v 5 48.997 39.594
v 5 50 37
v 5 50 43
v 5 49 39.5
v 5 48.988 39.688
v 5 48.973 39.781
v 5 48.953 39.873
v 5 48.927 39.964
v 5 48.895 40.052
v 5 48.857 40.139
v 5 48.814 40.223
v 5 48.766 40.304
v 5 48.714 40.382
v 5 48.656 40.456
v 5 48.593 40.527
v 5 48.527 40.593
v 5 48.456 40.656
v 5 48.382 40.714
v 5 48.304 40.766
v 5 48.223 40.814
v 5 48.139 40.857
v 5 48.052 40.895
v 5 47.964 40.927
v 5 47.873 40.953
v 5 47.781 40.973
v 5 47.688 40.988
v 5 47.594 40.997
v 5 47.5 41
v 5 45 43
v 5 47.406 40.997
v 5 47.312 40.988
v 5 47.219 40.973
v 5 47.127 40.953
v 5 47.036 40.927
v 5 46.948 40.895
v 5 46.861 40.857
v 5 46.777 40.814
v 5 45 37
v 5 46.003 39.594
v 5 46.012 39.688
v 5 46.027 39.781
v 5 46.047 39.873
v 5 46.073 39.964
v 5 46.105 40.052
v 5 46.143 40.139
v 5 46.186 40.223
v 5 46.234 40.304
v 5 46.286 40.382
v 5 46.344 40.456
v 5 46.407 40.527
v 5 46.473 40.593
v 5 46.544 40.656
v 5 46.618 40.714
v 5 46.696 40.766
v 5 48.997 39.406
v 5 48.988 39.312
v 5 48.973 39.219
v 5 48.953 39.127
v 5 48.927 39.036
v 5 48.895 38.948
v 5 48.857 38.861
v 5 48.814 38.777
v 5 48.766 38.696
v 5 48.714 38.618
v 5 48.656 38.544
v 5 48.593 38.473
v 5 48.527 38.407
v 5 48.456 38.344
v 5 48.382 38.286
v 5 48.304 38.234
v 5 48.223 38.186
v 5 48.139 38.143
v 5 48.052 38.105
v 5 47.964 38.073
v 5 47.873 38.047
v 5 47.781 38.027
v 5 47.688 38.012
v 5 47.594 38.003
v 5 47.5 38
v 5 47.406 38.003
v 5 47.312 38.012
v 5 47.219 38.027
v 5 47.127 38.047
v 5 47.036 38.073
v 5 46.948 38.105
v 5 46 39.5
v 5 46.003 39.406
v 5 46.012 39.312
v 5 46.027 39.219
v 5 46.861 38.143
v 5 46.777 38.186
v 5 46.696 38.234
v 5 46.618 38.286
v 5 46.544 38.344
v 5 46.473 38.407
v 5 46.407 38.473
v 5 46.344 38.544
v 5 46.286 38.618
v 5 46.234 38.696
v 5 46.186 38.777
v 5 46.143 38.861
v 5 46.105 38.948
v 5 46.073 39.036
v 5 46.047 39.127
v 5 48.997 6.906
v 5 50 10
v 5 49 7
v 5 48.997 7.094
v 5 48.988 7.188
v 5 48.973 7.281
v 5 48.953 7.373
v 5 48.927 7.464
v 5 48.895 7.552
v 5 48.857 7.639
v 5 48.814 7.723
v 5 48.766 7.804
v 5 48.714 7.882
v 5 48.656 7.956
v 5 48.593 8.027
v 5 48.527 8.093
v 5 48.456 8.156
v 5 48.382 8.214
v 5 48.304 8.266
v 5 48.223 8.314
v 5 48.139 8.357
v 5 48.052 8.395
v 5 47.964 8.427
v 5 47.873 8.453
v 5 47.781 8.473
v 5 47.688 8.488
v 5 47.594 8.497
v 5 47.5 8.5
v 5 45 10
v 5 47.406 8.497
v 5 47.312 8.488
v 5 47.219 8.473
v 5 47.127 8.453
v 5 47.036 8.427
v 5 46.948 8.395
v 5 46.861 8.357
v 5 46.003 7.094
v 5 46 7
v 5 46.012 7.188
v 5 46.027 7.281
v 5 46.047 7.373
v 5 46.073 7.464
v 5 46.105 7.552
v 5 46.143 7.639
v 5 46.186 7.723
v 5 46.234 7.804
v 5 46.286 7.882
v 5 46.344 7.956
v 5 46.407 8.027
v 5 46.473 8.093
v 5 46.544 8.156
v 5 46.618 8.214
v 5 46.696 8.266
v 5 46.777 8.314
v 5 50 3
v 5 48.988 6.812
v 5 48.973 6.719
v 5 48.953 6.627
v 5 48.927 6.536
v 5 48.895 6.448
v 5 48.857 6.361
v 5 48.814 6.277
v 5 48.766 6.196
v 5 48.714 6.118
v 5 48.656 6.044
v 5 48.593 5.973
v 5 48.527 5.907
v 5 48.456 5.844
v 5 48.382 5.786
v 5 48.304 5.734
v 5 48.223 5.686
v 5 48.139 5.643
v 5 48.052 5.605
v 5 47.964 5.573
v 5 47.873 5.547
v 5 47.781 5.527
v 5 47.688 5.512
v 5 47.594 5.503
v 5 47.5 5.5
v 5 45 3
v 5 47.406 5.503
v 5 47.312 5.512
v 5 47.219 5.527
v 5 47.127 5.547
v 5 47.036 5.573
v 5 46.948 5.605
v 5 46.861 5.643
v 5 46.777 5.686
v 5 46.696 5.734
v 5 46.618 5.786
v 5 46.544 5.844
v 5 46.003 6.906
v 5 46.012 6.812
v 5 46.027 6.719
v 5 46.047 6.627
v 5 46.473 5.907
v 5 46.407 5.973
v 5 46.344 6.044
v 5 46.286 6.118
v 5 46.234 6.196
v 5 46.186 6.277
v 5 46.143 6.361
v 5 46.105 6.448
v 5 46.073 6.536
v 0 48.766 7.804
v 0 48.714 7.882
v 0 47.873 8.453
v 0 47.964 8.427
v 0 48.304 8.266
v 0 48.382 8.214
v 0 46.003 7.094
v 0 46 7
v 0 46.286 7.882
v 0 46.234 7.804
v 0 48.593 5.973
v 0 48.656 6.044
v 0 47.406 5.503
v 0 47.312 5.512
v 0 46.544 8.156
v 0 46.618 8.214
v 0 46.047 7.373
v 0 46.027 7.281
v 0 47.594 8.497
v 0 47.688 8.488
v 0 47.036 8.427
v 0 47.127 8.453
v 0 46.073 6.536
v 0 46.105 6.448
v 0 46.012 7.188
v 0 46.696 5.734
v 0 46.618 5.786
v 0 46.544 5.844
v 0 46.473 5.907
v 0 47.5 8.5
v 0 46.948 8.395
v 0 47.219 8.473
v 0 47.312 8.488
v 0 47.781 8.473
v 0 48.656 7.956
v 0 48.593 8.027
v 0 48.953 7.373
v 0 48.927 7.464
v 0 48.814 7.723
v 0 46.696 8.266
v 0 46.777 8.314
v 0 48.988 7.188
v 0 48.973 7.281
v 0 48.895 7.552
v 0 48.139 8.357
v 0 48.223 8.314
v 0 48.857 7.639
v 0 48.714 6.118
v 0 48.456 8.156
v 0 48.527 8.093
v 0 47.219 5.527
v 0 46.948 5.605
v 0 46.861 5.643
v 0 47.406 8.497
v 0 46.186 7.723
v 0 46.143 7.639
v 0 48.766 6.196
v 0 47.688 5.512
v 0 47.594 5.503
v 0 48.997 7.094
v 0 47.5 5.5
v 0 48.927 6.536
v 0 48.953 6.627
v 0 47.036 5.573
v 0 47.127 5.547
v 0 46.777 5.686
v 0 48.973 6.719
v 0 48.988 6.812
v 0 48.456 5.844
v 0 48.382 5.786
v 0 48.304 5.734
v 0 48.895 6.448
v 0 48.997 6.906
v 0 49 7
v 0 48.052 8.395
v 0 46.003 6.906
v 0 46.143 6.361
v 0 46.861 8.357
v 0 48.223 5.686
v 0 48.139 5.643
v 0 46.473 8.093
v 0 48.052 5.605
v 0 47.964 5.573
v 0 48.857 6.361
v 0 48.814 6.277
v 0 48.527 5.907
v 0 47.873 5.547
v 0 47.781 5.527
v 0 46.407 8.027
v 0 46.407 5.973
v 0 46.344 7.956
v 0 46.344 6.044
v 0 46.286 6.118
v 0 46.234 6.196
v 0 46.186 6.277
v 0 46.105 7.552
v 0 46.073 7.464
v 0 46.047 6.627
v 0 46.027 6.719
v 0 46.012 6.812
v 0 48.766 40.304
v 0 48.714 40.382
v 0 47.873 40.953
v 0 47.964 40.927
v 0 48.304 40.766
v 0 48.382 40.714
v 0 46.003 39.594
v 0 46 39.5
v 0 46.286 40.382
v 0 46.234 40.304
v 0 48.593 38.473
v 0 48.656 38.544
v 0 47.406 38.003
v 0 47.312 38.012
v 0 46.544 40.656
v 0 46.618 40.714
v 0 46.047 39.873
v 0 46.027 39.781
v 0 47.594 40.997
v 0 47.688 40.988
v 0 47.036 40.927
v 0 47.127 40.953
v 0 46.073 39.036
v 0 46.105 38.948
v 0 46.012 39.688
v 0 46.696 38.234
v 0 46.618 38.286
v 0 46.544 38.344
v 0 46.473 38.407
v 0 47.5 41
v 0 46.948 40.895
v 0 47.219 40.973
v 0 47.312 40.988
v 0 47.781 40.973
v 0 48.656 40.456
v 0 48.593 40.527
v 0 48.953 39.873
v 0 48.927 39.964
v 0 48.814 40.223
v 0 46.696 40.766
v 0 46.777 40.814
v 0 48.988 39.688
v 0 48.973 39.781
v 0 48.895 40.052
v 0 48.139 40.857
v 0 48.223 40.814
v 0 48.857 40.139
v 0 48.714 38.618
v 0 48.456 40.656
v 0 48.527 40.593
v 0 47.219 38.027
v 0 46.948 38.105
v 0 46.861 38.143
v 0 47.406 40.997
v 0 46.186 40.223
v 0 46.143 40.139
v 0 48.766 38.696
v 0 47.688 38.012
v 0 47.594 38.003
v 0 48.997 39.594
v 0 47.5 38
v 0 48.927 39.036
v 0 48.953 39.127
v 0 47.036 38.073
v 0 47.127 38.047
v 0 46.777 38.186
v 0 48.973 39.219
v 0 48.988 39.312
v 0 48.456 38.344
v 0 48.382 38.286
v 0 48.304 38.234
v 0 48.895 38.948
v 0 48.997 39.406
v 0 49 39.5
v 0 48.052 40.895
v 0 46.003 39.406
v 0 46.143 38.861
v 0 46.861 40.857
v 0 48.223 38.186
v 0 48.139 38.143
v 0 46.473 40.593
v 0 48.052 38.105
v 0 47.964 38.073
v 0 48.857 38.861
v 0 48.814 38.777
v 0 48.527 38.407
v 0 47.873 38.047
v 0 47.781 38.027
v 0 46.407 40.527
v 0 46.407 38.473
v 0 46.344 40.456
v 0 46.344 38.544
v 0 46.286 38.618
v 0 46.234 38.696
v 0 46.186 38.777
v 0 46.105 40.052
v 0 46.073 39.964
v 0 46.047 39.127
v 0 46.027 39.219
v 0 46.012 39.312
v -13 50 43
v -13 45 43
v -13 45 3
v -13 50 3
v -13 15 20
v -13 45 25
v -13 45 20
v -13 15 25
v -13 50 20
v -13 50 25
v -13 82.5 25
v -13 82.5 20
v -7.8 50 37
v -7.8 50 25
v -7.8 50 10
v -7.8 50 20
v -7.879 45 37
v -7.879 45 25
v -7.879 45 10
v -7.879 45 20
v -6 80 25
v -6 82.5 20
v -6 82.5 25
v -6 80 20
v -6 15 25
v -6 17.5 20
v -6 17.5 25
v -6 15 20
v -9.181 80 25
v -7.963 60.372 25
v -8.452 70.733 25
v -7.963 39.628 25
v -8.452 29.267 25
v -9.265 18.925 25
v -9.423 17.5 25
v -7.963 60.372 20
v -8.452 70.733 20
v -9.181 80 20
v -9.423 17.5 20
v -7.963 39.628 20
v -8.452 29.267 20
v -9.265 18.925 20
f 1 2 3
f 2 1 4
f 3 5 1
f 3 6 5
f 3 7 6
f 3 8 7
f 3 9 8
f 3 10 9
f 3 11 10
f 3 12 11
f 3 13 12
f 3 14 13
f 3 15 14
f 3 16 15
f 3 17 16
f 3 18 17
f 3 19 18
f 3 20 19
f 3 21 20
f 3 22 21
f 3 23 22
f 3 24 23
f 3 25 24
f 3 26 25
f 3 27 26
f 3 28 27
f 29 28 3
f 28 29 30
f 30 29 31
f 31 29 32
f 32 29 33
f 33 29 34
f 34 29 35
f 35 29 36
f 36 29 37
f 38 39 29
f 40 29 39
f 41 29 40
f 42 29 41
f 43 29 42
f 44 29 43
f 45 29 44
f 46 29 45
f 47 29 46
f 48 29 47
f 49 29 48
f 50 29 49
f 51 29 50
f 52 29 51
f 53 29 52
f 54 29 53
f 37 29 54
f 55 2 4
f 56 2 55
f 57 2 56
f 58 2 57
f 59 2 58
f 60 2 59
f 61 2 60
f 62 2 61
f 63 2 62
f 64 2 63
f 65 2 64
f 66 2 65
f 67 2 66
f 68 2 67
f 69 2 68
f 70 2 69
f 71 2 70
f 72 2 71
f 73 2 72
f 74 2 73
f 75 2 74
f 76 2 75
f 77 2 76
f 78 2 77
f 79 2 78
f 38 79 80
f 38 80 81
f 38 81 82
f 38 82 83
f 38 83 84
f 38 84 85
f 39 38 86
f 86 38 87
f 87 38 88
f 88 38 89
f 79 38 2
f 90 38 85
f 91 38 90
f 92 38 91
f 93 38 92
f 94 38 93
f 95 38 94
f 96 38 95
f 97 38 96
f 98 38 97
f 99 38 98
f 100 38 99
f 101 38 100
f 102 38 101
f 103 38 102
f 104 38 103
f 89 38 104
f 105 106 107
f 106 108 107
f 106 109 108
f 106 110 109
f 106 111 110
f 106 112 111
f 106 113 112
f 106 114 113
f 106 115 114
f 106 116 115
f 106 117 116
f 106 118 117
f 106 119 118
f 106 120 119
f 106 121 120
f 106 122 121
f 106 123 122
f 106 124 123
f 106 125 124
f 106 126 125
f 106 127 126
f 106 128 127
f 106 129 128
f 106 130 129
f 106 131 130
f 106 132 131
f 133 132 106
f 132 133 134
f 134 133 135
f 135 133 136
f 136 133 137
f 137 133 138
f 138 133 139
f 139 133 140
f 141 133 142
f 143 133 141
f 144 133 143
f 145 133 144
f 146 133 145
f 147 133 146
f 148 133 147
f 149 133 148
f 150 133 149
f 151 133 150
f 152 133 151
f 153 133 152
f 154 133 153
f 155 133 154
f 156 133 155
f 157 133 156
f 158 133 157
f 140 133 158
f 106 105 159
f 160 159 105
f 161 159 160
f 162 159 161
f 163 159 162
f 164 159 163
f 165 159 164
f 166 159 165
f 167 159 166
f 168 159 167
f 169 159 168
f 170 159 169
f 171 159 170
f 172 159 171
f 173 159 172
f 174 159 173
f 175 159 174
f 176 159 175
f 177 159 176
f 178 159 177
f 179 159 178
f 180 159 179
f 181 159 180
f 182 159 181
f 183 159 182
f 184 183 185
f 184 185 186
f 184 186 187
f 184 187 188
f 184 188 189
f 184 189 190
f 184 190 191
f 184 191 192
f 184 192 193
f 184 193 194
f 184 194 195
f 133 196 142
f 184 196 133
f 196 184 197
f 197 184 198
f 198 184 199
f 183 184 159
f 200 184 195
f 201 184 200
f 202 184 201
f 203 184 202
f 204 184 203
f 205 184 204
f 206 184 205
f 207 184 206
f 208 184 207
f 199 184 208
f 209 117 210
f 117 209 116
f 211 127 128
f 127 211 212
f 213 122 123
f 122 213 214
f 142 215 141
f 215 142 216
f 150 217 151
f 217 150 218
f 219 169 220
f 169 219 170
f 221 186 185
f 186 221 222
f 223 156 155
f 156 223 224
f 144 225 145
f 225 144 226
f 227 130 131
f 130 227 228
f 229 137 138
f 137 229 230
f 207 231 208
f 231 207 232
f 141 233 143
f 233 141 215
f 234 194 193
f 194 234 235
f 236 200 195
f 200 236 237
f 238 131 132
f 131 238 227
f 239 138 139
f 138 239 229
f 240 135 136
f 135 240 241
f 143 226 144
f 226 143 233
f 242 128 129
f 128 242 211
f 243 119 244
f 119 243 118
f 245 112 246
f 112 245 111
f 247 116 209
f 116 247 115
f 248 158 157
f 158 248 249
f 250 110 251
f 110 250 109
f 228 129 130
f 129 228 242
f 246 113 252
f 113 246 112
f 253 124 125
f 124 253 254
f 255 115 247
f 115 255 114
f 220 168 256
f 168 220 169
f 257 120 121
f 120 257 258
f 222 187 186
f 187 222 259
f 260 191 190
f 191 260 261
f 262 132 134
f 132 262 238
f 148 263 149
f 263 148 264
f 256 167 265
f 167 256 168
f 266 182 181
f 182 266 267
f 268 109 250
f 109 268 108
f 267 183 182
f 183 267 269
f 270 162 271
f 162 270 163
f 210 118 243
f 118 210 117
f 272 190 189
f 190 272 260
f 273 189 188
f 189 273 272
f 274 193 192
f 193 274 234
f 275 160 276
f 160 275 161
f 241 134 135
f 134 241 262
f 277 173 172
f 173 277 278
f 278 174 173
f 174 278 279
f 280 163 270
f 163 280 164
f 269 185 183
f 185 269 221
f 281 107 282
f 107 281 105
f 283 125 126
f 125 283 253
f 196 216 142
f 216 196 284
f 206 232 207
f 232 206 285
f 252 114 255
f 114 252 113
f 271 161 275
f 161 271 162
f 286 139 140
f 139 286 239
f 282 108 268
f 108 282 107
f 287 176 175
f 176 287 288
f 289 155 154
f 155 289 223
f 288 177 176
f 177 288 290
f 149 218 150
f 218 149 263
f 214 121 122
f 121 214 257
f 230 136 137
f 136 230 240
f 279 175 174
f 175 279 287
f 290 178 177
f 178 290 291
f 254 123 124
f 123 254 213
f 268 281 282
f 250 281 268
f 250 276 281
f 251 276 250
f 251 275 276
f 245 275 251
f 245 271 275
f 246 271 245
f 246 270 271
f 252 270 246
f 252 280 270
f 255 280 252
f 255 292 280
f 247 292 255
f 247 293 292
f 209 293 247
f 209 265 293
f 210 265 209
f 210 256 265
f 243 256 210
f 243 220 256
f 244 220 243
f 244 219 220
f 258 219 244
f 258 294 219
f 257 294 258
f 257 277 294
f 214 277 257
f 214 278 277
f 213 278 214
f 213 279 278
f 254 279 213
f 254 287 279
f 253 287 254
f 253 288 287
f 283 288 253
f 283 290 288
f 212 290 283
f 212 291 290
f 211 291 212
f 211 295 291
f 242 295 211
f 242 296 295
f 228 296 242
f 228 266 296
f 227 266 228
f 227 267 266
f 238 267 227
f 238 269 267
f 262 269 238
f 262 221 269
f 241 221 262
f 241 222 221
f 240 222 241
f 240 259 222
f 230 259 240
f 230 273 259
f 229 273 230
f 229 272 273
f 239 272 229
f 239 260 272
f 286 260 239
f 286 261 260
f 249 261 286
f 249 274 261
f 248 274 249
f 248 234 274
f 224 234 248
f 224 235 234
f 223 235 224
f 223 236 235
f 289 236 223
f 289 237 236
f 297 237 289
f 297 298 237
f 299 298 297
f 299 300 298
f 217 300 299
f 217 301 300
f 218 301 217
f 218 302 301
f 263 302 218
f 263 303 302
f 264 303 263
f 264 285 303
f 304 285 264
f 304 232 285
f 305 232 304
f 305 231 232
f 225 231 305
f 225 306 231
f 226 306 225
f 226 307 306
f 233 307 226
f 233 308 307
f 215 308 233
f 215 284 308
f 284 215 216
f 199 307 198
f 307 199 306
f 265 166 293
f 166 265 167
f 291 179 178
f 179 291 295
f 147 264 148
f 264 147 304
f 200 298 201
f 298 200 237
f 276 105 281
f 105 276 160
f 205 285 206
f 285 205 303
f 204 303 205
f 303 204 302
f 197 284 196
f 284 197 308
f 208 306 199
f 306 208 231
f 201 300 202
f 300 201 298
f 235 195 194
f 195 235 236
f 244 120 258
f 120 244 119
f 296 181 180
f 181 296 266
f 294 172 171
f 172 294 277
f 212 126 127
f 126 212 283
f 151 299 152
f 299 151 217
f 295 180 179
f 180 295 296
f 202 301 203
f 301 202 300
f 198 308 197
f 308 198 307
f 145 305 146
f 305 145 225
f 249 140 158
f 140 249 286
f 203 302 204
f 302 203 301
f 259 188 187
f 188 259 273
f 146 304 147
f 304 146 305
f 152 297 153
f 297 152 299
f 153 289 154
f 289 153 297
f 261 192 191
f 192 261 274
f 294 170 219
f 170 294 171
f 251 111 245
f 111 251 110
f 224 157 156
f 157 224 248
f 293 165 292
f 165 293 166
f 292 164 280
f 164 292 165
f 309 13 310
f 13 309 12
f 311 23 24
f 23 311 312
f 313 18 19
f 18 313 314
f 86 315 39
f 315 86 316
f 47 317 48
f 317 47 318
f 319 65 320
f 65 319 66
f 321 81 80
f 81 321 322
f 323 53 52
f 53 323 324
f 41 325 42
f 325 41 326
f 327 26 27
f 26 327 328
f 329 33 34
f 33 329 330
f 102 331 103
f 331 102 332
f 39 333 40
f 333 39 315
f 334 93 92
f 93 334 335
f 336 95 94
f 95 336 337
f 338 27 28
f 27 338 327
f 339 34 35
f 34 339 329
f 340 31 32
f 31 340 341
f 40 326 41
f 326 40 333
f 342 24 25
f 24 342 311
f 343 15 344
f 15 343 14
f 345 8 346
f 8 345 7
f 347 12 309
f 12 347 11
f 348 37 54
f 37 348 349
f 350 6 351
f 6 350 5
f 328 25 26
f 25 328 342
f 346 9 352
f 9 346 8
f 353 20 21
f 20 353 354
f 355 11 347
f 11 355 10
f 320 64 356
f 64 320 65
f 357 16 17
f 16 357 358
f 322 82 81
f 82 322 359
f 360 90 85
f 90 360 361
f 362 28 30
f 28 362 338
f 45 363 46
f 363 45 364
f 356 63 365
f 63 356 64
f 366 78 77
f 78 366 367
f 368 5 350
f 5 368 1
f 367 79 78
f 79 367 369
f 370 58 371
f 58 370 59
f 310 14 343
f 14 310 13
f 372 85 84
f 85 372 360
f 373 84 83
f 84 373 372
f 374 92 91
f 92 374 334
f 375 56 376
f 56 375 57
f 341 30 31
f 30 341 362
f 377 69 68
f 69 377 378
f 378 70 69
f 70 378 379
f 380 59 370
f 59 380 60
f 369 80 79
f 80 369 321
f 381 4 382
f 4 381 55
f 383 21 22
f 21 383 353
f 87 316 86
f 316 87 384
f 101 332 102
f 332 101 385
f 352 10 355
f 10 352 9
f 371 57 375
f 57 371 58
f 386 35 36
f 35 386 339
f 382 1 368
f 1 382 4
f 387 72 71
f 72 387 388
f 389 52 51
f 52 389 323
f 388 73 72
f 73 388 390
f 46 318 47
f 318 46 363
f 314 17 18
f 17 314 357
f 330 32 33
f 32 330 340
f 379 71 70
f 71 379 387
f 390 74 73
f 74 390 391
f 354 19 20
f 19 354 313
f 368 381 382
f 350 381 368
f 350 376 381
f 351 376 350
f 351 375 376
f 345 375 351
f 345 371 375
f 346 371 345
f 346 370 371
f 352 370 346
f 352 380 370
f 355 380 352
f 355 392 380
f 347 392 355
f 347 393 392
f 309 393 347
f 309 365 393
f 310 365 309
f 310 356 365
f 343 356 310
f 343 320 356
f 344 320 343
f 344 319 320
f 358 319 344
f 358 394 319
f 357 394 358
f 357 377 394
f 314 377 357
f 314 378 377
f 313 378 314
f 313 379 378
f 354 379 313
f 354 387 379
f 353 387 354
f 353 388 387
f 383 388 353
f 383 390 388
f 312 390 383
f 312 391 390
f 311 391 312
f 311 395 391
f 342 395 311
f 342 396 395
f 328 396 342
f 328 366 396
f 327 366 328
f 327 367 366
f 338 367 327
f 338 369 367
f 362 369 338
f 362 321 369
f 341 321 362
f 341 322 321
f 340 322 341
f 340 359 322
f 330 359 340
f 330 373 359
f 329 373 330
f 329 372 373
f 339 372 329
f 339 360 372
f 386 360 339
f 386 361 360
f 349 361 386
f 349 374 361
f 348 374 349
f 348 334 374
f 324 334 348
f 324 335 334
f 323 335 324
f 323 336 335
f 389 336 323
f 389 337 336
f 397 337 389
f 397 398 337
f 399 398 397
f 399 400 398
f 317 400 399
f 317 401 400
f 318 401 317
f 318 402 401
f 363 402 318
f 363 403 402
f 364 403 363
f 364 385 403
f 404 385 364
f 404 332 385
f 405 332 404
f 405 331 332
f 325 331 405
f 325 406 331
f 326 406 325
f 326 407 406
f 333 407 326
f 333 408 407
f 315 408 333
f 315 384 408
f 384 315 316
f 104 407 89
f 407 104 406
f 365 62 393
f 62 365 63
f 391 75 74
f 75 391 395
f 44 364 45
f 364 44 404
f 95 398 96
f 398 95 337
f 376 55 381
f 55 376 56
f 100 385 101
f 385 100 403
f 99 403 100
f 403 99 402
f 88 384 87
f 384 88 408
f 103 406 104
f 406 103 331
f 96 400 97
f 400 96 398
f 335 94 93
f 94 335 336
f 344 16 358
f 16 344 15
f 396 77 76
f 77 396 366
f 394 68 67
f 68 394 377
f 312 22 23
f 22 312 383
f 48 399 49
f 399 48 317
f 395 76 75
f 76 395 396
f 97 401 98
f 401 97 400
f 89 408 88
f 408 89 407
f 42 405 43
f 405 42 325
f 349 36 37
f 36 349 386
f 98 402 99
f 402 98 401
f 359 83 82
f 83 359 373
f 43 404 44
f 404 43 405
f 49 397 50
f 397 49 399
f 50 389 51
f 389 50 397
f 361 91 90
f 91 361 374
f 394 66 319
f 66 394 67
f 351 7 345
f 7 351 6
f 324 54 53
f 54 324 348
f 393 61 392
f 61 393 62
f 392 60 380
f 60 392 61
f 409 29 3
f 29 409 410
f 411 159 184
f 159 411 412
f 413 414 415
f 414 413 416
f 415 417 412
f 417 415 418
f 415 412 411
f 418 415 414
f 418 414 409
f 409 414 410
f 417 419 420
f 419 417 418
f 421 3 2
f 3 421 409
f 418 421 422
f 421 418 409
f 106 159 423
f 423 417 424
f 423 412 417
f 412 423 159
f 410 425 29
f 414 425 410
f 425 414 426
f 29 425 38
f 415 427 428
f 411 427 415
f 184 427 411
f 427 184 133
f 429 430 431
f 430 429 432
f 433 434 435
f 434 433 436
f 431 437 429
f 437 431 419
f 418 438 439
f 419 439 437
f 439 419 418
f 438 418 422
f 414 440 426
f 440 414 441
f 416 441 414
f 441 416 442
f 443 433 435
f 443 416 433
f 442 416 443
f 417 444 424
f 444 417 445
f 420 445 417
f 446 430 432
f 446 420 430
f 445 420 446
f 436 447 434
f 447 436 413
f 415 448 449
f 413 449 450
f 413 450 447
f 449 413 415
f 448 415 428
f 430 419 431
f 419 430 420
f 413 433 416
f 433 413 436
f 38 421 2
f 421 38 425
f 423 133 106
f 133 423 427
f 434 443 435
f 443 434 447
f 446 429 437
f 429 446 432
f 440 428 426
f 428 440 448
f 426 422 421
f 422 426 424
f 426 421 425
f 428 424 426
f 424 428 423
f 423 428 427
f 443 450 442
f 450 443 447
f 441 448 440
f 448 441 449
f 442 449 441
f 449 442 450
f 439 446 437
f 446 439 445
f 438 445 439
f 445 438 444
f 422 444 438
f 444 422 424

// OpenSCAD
// file: nut.scad
// 1.5^2 + y^2 = 3^2
// sqrt(3^2 - 1.5^2)
//       30
//    /   |
// 60  - 90
// cos(30) = x / 3
// x = 3 cos(30)
module hex(side_length=3) {
  points = [[0,0], [side_length, 0], [side_length / 2, side_length * cos(30)]];
  for (i=[0:1:5]) {
    rotate([0,0,i * 60]) polygon(points);
  }
}

module hex_nut(side_length=3, height=2) {
    linear_extrude(height=height) hex(side_length);
}

module square_nut(side_length=5, height=2) {
    cube([5,5,2]);
}
// file: screw.scad
$fn=100;

module screw(screw_head_radius=3, screw_head_height=3, threaded_radius=1.5, threaded_height=10) {
  // screw head
  cylinder(h=screw_head_height, r=screw_head_radius);

  translate([0, 0, screw_head_height]) {
    cylinder(h=threaded_height, r=threaded_radius);
  }
}

// m3x10

screw(screw_head_radius=3, screw_head_height=3, threaded_radius=1.5, threaded_height=10);
// file: screw_with_nut.scad
use <screw.scad>
use <nut.scad>

module screw_with_nut(hex_nut_height=2, screw_head_height=3, threaded_height=10, threaded_radius=1.5, screw_head_radius=3, hex_nut_side_length=3, square_nut_height=2, square_nut_side_length=5, nut_type="hex") {
  screw(screw_head_radius=screw_head_radius, screw_head_height=screw_head_height, threaded_radius=threaded_radius, threaded_height=threaded_height);

  if (nut_type == "hex") {
    translate([0,0, screw_head_height + threaded_height - hex_nut_height]) {
      hex_nut(side_length=hex_nut_side_length, height=hex_nut_height);
    }
  }

  else if (nut_type == "square"){
    translate([
        -square_nut_side_length / 2,
        -square_nut_side_length / 2,
        screw_head_height + threaded_height - square_nut_height
    ]) {
      square_nut(side_length=square_nut_side_length, height=square_nut_height);
    }
  }

}

screw_with_nut(nut_type="square");
// file: battery_door.scad
$fn = 100;

module remove() {
  translate([0, 0, 29]) {
    color([1,1,0]) cube([8, 2, 20]);
  }

  translate([0, 0, -2]) {
    color([0,1,1]) cube([8, 2, 20]);
  }

  // make it easier to open the battery door
  translate([0, -3, 19]) {
    color([0,0,1]) cube([4, 4.5, 9]);
  }
}

module stuff(
    depth=5,
    battery_height = 30 + 5 * 2,
    fan_radius = 60,
    oset = 1,
) {
  // door knob
  translate([0, -3, 19]) {
    color([1,0,0]) cube([8, 9, 9]);
  }

  // door knob connection
  translate([0, 0, 19]) {
    color([0,1,0]) cube([3, 6, 9]);
  }

  translate([-3, 3, 19]) {
    color([0,0,1]) cube([3, 3, 9]);
  }
  // door knob connection 2
  translate([-3, 5, 19]) {
    cube([8, 2, 9]);
  }

  // door knob connection 3
  translate([5, 5, 19]) {
    cube([3, 5, 9]);
  }

  // body
  difference() {
    translate([5,4,3]) {
      cube([3, 100 - depth - 5, battery_height ]);
    }
    translate([0, 0, 17]) {
      cube([10, 10, 12]);
    }
  }


  // joint
  translate([5,100 - 8,1.5]) {
    cylinder(h=battery_height + 3, r=3);
  }
}

// stuff();
module battery_door(
    depth=5,
    battery_height = 30 + 5 * 2,
    fan_radius = 60,
    oset = 1,
) {
  // union() {
    difference() {
      stuff();

      remove();
    }
    // translate([4, -3, 19]) {
      // color([0,1,0]) cylinder(h=9, r=4);
    // }
  // }
}
//
battery_door();
// remove();
  // to smoothen
// file: battery_door_switch_screws.scad
use <screw_with_nut.scad>

module battery_door_switch_screws() {
  // hole top
  translate([9,47.5,7]) {
    rotate([0,-90,0]) color([0,0,1]) screw_with_nut(threaded_height=6, nut_type="none");
  }

  // hole bottom
  translate([9,47.5,39.5]) {
    rotate([0,-90,0]) color([0,0,1]) screw_with_nut(threaded_height=6, nut_type="none");
  }
}
// file: switch.scad
$fn = 200;
module switch_hole() {
  translate([0,0,-6.5]) {
    color([1,0,0]) cube([5,8,13]);
  }
  rotate([0,90,0]) cylinder(h=5, r=6.5);
  translate([0,8,0]) {
    rotate([0,90,0]) cylinder(h=5, r=6.5);
  }
}

module switch() {
  // make the front curvy
  intersection() {
    // remove a cylinder from the back to add a curve
    difference() {
      cube([62.5,27,18]);

      translate([30,27,345]) {
        rotate([90,0,0])
        color([1,0,0])
        cylinder(h=27, r=330.2);
      }
    }

    translate([30,27,331]) {
      rotate([90,0,0])
      color([1,0,0])
      cylinder(h=27, r=330.2);
    }
  }

  // switch_hole();
  translate([65 / 2 + 2.5, 12.5,1.5]) {
    rotate([0,90,90]) { switch_hole(); }
  }
}

// translate([30,27,345]) {
  // rotate([90,0,0])
  // color([1,0,0])
  // cylinder(h=27, r=330.2);
// }
switch();
// file: battery_door_with_switch.scad
use <battery_door.scad>
use <switch.scad>
use <screw_with_nut.scad>
use <battery_door_switch_screws.scad>
$fn = 300;


module removables() {
  // switch
  translate([7.5,80,10]) {
    color([1, 0,0]) rotate([0,0,-90]) rotate([90,0,0]) switch();
  }

  battery_door_switch_screws();
}
module battery_door_with_switch() {
  difference() {
    battery_door();
    removables();
  }
}

battery_door_with_switch();
// main file
use <battery_door_with_switch.scad>
use <switch.scad>
use <battery_door_switch_screws.scad>

$fn = 200;


module removables() {
  // battery door
  battery_door_with_switch();

  // switch
  translate([7,80,10]) {
      rotate([90,0,0])
      rotate([0,-90,0])
      switch();
  }

  // screws
  battery_door_switch_screws();
}


module subtract_from() {
  translate([-13,45,3]) {
    color([1,0,0]) cube([18,5,40]);
  }

  translate([-13,15,20]) {
    cube([7, 67.5,5]);
  }

}
module switch_support() {
  difference() {
    subtract_from();
    removables();
  }
}

switch_support();
// removables();
